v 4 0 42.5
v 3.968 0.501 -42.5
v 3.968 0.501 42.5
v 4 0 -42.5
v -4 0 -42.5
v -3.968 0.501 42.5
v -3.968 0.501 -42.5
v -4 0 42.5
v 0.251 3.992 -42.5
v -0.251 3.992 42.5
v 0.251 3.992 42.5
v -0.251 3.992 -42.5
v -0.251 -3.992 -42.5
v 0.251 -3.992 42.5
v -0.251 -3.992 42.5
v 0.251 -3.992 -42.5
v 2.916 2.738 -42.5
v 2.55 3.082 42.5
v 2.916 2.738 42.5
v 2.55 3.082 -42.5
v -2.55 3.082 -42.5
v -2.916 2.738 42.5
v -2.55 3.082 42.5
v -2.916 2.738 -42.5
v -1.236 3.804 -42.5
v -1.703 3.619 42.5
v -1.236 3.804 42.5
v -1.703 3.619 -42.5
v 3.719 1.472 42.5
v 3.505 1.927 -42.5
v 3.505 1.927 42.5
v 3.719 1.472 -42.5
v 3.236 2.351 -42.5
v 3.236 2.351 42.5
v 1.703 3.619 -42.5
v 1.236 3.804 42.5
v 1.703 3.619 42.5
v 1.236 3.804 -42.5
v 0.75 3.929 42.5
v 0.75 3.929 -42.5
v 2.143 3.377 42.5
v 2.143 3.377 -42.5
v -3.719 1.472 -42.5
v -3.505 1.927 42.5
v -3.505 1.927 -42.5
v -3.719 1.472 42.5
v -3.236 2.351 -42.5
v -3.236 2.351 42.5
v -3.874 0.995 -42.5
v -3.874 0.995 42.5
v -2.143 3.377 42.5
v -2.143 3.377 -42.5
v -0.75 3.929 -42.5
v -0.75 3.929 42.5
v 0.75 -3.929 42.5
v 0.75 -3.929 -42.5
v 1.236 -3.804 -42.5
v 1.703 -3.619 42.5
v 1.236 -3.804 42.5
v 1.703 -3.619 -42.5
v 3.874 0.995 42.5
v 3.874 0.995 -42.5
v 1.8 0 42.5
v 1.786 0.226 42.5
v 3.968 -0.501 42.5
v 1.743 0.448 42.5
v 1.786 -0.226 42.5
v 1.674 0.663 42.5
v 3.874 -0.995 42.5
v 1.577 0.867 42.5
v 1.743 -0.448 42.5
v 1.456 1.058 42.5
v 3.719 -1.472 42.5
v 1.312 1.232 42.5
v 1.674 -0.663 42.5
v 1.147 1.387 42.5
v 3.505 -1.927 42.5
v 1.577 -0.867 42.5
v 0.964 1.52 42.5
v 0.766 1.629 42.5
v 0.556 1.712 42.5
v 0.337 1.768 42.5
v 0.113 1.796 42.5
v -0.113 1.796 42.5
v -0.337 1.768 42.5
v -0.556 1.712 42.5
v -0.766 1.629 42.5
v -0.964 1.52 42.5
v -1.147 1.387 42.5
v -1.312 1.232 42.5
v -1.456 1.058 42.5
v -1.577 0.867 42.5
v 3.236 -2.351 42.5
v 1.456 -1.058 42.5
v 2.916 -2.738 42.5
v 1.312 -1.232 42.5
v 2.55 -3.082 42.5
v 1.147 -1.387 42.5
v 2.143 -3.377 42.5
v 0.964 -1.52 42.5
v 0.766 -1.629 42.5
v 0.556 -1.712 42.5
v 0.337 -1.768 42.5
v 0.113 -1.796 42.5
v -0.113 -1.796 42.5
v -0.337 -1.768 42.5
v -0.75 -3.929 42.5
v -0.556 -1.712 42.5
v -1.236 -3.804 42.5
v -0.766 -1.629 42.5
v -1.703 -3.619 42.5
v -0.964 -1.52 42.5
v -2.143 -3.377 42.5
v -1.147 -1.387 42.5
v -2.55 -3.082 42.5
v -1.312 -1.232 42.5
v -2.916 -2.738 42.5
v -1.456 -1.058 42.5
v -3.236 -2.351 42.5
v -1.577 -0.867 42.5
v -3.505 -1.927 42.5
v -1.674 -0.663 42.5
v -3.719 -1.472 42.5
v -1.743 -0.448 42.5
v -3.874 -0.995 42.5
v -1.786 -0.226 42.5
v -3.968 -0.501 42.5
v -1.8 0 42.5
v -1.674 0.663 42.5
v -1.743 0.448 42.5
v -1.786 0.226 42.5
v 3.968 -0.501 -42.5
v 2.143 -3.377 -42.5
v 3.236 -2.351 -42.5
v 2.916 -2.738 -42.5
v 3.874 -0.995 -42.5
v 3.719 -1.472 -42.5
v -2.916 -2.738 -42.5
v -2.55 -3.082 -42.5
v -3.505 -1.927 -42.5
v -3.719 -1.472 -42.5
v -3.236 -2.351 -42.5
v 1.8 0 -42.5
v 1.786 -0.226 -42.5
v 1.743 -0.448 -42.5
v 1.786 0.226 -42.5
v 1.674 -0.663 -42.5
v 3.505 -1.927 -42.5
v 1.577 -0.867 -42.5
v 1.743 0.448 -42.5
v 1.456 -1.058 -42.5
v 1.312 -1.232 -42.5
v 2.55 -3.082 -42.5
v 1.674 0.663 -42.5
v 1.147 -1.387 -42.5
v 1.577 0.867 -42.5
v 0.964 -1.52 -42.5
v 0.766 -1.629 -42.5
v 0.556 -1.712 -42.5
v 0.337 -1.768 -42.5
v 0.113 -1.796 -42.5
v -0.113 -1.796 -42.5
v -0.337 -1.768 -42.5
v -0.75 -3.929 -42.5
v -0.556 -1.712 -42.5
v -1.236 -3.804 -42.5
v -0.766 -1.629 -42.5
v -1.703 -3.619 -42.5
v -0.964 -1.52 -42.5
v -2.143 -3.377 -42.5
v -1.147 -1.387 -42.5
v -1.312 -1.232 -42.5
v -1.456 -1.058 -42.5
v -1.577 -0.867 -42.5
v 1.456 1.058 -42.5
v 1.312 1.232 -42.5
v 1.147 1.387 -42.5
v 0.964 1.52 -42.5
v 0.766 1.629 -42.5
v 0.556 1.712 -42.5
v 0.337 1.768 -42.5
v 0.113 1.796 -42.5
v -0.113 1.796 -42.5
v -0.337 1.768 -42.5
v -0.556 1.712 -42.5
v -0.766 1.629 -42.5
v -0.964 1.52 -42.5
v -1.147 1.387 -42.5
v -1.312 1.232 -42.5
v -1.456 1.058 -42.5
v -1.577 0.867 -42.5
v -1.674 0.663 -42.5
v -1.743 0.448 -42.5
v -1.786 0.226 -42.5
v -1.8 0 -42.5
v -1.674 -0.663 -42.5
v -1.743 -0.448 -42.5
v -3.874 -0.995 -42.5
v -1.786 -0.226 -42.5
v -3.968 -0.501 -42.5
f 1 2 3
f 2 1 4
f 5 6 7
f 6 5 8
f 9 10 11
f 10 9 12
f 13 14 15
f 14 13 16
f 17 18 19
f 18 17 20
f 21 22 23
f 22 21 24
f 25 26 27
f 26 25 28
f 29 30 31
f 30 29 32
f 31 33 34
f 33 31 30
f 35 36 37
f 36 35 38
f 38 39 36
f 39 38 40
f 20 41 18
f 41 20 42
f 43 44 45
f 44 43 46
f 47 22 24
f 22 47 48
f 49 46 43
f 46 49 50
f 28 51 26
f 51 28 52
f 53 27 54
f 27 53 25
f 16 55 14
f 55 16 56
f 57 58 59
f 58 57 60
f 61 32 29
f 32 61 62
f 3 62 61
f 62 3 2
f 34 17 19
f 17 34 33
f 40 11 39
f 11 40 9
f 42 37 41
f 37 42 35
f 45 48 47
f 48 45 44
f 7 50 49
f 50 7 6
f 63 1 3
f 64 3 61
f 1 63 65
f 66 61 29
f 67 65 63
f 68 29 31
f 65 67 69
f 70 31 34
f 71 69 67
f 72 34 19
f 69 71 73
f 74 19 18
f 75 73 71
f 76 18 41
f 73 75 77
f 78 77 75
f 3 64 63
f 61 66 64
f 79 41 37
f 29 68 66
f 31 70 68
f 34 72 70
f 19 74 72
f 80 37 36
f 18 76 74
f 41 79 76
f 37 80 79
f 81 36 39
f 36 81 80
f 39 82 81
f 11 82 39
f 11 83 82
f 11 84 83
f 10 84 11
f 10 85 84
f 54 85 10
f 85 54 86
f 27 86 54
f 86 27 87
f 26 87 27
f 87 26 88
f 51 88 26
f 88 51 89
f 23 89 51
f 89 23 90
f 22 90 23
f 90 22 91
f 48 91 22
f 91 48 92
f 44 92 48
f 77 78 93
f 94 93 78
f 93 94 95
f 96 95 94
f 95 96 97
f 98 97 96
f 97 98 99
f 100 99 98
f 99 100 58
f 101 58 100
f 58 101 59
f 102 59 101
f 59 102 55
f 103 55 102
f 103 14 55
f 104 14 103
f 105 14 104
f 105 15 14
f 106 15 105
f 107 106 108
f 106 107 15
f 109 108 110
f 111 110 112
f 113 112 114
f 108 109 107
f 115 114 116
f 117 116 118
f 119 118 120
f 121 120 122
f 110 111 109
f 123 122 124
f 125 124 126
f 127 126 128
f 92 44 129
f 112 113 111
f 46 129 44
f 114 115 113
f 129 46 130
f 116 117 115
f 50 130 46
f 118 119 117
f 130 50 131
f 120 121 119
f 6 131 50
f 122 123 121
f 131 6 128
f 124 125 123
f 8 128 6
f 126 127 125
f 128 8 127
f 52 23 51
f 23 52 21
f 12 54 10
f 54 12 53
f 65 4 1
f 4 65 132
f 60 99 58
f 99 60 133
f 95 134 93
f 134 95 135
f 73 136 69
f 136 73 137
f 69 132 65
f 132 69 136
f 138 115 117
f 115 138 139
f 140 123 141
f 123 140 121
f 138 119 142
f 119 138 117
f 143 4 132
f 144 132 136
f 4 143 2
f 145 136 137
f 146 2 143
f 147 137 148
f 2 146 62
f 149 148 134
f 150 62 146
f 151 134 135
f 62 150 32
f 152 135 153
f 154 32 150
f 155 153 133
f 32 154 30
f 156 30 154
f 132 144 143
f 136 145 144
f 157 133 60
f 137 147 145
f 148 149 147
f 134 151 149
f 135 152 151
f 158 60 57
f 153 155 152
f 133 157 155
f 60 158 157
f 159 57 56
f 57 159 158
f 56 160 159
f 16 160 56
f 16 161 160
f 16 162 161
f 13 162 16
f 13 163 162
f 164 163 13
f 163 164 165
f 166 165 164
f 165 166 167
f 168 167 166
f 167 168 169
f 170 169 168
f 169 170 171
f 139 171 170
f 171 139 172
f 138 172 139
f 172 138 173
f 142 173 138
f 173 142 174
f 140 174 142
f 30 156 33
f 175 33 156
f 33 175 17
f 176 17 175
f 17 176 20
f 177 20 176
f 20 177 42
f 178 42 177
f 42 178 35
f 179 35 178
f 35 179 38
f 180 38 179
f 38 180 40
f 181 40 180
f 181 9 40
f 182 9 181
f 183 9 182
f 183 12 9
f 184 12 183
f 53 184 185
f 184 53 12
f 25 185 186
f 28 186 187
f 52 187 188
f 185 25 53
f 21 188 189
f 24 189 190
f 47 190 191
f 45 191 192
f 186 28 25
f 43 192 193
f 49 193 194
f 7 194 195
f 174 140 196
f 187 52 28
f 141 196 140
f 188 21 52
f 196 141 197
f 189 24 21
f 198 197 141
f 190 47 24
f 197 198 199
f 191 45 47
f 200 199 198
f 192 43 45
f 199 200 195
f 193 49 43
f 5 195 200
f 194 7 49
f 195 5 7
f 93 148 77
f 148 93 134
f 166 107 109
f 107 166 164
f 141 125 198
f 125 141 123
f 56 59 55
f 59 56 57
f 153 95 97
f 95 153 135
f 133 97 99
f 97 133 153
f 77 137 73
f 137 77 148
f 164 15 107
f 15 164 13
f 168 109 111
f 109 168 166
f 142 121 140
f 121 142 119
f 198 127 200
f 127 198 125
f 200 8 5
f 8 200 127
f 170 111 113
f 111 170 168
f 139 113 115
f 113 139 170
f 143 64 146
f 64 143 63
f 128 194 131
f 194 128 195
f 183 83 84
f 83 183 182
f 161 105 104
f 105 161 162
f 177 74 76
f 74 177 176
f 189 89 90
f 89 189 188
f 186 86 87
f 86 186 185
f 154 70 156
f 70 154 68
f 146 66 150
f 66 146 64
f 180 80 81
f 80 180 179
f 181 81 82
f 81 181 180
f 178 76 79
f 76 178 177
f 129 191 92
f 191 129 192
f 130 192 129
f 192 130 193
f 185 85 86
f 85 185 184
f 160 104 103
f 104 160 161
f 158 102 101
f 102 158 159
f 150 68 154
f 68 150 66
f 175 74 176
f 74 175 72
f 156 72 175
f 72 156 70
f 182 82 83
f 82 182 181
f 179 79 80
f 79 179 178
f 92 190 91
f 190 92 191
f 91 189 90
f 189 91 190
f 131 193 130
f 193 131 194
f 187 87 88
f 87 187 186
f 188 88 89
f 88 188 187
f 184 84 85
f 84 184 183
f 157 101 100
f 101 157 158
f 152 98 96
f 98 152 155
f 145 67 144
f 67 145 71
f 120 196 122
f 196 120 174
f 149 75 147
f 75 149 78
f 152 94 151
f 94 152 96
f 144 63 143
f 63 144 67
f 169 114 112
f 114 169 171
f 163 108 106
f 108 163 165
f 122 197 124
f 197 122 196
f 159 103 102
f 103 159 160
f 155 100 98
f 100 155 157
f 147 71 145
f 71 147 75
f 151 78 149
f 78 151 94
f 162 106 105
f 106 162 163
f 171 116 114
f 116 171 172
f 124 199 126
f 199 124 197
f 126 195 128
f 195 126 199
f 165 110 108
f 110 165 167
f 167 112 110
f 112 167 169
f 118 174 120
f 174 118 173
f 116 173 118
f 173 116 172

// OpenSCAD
$fn = 50;


difference() {
	union() {
		translate(v = [0, 0, -42.5000000000]) {
			cylinder(h = 85, r = 4.0000000000);
		}
	}
	union() {
		#translate(v = [0, 0, -100.0000000000]) {
			cylinder(h = 200, r = 1.8000000000);
		}
	}
}
